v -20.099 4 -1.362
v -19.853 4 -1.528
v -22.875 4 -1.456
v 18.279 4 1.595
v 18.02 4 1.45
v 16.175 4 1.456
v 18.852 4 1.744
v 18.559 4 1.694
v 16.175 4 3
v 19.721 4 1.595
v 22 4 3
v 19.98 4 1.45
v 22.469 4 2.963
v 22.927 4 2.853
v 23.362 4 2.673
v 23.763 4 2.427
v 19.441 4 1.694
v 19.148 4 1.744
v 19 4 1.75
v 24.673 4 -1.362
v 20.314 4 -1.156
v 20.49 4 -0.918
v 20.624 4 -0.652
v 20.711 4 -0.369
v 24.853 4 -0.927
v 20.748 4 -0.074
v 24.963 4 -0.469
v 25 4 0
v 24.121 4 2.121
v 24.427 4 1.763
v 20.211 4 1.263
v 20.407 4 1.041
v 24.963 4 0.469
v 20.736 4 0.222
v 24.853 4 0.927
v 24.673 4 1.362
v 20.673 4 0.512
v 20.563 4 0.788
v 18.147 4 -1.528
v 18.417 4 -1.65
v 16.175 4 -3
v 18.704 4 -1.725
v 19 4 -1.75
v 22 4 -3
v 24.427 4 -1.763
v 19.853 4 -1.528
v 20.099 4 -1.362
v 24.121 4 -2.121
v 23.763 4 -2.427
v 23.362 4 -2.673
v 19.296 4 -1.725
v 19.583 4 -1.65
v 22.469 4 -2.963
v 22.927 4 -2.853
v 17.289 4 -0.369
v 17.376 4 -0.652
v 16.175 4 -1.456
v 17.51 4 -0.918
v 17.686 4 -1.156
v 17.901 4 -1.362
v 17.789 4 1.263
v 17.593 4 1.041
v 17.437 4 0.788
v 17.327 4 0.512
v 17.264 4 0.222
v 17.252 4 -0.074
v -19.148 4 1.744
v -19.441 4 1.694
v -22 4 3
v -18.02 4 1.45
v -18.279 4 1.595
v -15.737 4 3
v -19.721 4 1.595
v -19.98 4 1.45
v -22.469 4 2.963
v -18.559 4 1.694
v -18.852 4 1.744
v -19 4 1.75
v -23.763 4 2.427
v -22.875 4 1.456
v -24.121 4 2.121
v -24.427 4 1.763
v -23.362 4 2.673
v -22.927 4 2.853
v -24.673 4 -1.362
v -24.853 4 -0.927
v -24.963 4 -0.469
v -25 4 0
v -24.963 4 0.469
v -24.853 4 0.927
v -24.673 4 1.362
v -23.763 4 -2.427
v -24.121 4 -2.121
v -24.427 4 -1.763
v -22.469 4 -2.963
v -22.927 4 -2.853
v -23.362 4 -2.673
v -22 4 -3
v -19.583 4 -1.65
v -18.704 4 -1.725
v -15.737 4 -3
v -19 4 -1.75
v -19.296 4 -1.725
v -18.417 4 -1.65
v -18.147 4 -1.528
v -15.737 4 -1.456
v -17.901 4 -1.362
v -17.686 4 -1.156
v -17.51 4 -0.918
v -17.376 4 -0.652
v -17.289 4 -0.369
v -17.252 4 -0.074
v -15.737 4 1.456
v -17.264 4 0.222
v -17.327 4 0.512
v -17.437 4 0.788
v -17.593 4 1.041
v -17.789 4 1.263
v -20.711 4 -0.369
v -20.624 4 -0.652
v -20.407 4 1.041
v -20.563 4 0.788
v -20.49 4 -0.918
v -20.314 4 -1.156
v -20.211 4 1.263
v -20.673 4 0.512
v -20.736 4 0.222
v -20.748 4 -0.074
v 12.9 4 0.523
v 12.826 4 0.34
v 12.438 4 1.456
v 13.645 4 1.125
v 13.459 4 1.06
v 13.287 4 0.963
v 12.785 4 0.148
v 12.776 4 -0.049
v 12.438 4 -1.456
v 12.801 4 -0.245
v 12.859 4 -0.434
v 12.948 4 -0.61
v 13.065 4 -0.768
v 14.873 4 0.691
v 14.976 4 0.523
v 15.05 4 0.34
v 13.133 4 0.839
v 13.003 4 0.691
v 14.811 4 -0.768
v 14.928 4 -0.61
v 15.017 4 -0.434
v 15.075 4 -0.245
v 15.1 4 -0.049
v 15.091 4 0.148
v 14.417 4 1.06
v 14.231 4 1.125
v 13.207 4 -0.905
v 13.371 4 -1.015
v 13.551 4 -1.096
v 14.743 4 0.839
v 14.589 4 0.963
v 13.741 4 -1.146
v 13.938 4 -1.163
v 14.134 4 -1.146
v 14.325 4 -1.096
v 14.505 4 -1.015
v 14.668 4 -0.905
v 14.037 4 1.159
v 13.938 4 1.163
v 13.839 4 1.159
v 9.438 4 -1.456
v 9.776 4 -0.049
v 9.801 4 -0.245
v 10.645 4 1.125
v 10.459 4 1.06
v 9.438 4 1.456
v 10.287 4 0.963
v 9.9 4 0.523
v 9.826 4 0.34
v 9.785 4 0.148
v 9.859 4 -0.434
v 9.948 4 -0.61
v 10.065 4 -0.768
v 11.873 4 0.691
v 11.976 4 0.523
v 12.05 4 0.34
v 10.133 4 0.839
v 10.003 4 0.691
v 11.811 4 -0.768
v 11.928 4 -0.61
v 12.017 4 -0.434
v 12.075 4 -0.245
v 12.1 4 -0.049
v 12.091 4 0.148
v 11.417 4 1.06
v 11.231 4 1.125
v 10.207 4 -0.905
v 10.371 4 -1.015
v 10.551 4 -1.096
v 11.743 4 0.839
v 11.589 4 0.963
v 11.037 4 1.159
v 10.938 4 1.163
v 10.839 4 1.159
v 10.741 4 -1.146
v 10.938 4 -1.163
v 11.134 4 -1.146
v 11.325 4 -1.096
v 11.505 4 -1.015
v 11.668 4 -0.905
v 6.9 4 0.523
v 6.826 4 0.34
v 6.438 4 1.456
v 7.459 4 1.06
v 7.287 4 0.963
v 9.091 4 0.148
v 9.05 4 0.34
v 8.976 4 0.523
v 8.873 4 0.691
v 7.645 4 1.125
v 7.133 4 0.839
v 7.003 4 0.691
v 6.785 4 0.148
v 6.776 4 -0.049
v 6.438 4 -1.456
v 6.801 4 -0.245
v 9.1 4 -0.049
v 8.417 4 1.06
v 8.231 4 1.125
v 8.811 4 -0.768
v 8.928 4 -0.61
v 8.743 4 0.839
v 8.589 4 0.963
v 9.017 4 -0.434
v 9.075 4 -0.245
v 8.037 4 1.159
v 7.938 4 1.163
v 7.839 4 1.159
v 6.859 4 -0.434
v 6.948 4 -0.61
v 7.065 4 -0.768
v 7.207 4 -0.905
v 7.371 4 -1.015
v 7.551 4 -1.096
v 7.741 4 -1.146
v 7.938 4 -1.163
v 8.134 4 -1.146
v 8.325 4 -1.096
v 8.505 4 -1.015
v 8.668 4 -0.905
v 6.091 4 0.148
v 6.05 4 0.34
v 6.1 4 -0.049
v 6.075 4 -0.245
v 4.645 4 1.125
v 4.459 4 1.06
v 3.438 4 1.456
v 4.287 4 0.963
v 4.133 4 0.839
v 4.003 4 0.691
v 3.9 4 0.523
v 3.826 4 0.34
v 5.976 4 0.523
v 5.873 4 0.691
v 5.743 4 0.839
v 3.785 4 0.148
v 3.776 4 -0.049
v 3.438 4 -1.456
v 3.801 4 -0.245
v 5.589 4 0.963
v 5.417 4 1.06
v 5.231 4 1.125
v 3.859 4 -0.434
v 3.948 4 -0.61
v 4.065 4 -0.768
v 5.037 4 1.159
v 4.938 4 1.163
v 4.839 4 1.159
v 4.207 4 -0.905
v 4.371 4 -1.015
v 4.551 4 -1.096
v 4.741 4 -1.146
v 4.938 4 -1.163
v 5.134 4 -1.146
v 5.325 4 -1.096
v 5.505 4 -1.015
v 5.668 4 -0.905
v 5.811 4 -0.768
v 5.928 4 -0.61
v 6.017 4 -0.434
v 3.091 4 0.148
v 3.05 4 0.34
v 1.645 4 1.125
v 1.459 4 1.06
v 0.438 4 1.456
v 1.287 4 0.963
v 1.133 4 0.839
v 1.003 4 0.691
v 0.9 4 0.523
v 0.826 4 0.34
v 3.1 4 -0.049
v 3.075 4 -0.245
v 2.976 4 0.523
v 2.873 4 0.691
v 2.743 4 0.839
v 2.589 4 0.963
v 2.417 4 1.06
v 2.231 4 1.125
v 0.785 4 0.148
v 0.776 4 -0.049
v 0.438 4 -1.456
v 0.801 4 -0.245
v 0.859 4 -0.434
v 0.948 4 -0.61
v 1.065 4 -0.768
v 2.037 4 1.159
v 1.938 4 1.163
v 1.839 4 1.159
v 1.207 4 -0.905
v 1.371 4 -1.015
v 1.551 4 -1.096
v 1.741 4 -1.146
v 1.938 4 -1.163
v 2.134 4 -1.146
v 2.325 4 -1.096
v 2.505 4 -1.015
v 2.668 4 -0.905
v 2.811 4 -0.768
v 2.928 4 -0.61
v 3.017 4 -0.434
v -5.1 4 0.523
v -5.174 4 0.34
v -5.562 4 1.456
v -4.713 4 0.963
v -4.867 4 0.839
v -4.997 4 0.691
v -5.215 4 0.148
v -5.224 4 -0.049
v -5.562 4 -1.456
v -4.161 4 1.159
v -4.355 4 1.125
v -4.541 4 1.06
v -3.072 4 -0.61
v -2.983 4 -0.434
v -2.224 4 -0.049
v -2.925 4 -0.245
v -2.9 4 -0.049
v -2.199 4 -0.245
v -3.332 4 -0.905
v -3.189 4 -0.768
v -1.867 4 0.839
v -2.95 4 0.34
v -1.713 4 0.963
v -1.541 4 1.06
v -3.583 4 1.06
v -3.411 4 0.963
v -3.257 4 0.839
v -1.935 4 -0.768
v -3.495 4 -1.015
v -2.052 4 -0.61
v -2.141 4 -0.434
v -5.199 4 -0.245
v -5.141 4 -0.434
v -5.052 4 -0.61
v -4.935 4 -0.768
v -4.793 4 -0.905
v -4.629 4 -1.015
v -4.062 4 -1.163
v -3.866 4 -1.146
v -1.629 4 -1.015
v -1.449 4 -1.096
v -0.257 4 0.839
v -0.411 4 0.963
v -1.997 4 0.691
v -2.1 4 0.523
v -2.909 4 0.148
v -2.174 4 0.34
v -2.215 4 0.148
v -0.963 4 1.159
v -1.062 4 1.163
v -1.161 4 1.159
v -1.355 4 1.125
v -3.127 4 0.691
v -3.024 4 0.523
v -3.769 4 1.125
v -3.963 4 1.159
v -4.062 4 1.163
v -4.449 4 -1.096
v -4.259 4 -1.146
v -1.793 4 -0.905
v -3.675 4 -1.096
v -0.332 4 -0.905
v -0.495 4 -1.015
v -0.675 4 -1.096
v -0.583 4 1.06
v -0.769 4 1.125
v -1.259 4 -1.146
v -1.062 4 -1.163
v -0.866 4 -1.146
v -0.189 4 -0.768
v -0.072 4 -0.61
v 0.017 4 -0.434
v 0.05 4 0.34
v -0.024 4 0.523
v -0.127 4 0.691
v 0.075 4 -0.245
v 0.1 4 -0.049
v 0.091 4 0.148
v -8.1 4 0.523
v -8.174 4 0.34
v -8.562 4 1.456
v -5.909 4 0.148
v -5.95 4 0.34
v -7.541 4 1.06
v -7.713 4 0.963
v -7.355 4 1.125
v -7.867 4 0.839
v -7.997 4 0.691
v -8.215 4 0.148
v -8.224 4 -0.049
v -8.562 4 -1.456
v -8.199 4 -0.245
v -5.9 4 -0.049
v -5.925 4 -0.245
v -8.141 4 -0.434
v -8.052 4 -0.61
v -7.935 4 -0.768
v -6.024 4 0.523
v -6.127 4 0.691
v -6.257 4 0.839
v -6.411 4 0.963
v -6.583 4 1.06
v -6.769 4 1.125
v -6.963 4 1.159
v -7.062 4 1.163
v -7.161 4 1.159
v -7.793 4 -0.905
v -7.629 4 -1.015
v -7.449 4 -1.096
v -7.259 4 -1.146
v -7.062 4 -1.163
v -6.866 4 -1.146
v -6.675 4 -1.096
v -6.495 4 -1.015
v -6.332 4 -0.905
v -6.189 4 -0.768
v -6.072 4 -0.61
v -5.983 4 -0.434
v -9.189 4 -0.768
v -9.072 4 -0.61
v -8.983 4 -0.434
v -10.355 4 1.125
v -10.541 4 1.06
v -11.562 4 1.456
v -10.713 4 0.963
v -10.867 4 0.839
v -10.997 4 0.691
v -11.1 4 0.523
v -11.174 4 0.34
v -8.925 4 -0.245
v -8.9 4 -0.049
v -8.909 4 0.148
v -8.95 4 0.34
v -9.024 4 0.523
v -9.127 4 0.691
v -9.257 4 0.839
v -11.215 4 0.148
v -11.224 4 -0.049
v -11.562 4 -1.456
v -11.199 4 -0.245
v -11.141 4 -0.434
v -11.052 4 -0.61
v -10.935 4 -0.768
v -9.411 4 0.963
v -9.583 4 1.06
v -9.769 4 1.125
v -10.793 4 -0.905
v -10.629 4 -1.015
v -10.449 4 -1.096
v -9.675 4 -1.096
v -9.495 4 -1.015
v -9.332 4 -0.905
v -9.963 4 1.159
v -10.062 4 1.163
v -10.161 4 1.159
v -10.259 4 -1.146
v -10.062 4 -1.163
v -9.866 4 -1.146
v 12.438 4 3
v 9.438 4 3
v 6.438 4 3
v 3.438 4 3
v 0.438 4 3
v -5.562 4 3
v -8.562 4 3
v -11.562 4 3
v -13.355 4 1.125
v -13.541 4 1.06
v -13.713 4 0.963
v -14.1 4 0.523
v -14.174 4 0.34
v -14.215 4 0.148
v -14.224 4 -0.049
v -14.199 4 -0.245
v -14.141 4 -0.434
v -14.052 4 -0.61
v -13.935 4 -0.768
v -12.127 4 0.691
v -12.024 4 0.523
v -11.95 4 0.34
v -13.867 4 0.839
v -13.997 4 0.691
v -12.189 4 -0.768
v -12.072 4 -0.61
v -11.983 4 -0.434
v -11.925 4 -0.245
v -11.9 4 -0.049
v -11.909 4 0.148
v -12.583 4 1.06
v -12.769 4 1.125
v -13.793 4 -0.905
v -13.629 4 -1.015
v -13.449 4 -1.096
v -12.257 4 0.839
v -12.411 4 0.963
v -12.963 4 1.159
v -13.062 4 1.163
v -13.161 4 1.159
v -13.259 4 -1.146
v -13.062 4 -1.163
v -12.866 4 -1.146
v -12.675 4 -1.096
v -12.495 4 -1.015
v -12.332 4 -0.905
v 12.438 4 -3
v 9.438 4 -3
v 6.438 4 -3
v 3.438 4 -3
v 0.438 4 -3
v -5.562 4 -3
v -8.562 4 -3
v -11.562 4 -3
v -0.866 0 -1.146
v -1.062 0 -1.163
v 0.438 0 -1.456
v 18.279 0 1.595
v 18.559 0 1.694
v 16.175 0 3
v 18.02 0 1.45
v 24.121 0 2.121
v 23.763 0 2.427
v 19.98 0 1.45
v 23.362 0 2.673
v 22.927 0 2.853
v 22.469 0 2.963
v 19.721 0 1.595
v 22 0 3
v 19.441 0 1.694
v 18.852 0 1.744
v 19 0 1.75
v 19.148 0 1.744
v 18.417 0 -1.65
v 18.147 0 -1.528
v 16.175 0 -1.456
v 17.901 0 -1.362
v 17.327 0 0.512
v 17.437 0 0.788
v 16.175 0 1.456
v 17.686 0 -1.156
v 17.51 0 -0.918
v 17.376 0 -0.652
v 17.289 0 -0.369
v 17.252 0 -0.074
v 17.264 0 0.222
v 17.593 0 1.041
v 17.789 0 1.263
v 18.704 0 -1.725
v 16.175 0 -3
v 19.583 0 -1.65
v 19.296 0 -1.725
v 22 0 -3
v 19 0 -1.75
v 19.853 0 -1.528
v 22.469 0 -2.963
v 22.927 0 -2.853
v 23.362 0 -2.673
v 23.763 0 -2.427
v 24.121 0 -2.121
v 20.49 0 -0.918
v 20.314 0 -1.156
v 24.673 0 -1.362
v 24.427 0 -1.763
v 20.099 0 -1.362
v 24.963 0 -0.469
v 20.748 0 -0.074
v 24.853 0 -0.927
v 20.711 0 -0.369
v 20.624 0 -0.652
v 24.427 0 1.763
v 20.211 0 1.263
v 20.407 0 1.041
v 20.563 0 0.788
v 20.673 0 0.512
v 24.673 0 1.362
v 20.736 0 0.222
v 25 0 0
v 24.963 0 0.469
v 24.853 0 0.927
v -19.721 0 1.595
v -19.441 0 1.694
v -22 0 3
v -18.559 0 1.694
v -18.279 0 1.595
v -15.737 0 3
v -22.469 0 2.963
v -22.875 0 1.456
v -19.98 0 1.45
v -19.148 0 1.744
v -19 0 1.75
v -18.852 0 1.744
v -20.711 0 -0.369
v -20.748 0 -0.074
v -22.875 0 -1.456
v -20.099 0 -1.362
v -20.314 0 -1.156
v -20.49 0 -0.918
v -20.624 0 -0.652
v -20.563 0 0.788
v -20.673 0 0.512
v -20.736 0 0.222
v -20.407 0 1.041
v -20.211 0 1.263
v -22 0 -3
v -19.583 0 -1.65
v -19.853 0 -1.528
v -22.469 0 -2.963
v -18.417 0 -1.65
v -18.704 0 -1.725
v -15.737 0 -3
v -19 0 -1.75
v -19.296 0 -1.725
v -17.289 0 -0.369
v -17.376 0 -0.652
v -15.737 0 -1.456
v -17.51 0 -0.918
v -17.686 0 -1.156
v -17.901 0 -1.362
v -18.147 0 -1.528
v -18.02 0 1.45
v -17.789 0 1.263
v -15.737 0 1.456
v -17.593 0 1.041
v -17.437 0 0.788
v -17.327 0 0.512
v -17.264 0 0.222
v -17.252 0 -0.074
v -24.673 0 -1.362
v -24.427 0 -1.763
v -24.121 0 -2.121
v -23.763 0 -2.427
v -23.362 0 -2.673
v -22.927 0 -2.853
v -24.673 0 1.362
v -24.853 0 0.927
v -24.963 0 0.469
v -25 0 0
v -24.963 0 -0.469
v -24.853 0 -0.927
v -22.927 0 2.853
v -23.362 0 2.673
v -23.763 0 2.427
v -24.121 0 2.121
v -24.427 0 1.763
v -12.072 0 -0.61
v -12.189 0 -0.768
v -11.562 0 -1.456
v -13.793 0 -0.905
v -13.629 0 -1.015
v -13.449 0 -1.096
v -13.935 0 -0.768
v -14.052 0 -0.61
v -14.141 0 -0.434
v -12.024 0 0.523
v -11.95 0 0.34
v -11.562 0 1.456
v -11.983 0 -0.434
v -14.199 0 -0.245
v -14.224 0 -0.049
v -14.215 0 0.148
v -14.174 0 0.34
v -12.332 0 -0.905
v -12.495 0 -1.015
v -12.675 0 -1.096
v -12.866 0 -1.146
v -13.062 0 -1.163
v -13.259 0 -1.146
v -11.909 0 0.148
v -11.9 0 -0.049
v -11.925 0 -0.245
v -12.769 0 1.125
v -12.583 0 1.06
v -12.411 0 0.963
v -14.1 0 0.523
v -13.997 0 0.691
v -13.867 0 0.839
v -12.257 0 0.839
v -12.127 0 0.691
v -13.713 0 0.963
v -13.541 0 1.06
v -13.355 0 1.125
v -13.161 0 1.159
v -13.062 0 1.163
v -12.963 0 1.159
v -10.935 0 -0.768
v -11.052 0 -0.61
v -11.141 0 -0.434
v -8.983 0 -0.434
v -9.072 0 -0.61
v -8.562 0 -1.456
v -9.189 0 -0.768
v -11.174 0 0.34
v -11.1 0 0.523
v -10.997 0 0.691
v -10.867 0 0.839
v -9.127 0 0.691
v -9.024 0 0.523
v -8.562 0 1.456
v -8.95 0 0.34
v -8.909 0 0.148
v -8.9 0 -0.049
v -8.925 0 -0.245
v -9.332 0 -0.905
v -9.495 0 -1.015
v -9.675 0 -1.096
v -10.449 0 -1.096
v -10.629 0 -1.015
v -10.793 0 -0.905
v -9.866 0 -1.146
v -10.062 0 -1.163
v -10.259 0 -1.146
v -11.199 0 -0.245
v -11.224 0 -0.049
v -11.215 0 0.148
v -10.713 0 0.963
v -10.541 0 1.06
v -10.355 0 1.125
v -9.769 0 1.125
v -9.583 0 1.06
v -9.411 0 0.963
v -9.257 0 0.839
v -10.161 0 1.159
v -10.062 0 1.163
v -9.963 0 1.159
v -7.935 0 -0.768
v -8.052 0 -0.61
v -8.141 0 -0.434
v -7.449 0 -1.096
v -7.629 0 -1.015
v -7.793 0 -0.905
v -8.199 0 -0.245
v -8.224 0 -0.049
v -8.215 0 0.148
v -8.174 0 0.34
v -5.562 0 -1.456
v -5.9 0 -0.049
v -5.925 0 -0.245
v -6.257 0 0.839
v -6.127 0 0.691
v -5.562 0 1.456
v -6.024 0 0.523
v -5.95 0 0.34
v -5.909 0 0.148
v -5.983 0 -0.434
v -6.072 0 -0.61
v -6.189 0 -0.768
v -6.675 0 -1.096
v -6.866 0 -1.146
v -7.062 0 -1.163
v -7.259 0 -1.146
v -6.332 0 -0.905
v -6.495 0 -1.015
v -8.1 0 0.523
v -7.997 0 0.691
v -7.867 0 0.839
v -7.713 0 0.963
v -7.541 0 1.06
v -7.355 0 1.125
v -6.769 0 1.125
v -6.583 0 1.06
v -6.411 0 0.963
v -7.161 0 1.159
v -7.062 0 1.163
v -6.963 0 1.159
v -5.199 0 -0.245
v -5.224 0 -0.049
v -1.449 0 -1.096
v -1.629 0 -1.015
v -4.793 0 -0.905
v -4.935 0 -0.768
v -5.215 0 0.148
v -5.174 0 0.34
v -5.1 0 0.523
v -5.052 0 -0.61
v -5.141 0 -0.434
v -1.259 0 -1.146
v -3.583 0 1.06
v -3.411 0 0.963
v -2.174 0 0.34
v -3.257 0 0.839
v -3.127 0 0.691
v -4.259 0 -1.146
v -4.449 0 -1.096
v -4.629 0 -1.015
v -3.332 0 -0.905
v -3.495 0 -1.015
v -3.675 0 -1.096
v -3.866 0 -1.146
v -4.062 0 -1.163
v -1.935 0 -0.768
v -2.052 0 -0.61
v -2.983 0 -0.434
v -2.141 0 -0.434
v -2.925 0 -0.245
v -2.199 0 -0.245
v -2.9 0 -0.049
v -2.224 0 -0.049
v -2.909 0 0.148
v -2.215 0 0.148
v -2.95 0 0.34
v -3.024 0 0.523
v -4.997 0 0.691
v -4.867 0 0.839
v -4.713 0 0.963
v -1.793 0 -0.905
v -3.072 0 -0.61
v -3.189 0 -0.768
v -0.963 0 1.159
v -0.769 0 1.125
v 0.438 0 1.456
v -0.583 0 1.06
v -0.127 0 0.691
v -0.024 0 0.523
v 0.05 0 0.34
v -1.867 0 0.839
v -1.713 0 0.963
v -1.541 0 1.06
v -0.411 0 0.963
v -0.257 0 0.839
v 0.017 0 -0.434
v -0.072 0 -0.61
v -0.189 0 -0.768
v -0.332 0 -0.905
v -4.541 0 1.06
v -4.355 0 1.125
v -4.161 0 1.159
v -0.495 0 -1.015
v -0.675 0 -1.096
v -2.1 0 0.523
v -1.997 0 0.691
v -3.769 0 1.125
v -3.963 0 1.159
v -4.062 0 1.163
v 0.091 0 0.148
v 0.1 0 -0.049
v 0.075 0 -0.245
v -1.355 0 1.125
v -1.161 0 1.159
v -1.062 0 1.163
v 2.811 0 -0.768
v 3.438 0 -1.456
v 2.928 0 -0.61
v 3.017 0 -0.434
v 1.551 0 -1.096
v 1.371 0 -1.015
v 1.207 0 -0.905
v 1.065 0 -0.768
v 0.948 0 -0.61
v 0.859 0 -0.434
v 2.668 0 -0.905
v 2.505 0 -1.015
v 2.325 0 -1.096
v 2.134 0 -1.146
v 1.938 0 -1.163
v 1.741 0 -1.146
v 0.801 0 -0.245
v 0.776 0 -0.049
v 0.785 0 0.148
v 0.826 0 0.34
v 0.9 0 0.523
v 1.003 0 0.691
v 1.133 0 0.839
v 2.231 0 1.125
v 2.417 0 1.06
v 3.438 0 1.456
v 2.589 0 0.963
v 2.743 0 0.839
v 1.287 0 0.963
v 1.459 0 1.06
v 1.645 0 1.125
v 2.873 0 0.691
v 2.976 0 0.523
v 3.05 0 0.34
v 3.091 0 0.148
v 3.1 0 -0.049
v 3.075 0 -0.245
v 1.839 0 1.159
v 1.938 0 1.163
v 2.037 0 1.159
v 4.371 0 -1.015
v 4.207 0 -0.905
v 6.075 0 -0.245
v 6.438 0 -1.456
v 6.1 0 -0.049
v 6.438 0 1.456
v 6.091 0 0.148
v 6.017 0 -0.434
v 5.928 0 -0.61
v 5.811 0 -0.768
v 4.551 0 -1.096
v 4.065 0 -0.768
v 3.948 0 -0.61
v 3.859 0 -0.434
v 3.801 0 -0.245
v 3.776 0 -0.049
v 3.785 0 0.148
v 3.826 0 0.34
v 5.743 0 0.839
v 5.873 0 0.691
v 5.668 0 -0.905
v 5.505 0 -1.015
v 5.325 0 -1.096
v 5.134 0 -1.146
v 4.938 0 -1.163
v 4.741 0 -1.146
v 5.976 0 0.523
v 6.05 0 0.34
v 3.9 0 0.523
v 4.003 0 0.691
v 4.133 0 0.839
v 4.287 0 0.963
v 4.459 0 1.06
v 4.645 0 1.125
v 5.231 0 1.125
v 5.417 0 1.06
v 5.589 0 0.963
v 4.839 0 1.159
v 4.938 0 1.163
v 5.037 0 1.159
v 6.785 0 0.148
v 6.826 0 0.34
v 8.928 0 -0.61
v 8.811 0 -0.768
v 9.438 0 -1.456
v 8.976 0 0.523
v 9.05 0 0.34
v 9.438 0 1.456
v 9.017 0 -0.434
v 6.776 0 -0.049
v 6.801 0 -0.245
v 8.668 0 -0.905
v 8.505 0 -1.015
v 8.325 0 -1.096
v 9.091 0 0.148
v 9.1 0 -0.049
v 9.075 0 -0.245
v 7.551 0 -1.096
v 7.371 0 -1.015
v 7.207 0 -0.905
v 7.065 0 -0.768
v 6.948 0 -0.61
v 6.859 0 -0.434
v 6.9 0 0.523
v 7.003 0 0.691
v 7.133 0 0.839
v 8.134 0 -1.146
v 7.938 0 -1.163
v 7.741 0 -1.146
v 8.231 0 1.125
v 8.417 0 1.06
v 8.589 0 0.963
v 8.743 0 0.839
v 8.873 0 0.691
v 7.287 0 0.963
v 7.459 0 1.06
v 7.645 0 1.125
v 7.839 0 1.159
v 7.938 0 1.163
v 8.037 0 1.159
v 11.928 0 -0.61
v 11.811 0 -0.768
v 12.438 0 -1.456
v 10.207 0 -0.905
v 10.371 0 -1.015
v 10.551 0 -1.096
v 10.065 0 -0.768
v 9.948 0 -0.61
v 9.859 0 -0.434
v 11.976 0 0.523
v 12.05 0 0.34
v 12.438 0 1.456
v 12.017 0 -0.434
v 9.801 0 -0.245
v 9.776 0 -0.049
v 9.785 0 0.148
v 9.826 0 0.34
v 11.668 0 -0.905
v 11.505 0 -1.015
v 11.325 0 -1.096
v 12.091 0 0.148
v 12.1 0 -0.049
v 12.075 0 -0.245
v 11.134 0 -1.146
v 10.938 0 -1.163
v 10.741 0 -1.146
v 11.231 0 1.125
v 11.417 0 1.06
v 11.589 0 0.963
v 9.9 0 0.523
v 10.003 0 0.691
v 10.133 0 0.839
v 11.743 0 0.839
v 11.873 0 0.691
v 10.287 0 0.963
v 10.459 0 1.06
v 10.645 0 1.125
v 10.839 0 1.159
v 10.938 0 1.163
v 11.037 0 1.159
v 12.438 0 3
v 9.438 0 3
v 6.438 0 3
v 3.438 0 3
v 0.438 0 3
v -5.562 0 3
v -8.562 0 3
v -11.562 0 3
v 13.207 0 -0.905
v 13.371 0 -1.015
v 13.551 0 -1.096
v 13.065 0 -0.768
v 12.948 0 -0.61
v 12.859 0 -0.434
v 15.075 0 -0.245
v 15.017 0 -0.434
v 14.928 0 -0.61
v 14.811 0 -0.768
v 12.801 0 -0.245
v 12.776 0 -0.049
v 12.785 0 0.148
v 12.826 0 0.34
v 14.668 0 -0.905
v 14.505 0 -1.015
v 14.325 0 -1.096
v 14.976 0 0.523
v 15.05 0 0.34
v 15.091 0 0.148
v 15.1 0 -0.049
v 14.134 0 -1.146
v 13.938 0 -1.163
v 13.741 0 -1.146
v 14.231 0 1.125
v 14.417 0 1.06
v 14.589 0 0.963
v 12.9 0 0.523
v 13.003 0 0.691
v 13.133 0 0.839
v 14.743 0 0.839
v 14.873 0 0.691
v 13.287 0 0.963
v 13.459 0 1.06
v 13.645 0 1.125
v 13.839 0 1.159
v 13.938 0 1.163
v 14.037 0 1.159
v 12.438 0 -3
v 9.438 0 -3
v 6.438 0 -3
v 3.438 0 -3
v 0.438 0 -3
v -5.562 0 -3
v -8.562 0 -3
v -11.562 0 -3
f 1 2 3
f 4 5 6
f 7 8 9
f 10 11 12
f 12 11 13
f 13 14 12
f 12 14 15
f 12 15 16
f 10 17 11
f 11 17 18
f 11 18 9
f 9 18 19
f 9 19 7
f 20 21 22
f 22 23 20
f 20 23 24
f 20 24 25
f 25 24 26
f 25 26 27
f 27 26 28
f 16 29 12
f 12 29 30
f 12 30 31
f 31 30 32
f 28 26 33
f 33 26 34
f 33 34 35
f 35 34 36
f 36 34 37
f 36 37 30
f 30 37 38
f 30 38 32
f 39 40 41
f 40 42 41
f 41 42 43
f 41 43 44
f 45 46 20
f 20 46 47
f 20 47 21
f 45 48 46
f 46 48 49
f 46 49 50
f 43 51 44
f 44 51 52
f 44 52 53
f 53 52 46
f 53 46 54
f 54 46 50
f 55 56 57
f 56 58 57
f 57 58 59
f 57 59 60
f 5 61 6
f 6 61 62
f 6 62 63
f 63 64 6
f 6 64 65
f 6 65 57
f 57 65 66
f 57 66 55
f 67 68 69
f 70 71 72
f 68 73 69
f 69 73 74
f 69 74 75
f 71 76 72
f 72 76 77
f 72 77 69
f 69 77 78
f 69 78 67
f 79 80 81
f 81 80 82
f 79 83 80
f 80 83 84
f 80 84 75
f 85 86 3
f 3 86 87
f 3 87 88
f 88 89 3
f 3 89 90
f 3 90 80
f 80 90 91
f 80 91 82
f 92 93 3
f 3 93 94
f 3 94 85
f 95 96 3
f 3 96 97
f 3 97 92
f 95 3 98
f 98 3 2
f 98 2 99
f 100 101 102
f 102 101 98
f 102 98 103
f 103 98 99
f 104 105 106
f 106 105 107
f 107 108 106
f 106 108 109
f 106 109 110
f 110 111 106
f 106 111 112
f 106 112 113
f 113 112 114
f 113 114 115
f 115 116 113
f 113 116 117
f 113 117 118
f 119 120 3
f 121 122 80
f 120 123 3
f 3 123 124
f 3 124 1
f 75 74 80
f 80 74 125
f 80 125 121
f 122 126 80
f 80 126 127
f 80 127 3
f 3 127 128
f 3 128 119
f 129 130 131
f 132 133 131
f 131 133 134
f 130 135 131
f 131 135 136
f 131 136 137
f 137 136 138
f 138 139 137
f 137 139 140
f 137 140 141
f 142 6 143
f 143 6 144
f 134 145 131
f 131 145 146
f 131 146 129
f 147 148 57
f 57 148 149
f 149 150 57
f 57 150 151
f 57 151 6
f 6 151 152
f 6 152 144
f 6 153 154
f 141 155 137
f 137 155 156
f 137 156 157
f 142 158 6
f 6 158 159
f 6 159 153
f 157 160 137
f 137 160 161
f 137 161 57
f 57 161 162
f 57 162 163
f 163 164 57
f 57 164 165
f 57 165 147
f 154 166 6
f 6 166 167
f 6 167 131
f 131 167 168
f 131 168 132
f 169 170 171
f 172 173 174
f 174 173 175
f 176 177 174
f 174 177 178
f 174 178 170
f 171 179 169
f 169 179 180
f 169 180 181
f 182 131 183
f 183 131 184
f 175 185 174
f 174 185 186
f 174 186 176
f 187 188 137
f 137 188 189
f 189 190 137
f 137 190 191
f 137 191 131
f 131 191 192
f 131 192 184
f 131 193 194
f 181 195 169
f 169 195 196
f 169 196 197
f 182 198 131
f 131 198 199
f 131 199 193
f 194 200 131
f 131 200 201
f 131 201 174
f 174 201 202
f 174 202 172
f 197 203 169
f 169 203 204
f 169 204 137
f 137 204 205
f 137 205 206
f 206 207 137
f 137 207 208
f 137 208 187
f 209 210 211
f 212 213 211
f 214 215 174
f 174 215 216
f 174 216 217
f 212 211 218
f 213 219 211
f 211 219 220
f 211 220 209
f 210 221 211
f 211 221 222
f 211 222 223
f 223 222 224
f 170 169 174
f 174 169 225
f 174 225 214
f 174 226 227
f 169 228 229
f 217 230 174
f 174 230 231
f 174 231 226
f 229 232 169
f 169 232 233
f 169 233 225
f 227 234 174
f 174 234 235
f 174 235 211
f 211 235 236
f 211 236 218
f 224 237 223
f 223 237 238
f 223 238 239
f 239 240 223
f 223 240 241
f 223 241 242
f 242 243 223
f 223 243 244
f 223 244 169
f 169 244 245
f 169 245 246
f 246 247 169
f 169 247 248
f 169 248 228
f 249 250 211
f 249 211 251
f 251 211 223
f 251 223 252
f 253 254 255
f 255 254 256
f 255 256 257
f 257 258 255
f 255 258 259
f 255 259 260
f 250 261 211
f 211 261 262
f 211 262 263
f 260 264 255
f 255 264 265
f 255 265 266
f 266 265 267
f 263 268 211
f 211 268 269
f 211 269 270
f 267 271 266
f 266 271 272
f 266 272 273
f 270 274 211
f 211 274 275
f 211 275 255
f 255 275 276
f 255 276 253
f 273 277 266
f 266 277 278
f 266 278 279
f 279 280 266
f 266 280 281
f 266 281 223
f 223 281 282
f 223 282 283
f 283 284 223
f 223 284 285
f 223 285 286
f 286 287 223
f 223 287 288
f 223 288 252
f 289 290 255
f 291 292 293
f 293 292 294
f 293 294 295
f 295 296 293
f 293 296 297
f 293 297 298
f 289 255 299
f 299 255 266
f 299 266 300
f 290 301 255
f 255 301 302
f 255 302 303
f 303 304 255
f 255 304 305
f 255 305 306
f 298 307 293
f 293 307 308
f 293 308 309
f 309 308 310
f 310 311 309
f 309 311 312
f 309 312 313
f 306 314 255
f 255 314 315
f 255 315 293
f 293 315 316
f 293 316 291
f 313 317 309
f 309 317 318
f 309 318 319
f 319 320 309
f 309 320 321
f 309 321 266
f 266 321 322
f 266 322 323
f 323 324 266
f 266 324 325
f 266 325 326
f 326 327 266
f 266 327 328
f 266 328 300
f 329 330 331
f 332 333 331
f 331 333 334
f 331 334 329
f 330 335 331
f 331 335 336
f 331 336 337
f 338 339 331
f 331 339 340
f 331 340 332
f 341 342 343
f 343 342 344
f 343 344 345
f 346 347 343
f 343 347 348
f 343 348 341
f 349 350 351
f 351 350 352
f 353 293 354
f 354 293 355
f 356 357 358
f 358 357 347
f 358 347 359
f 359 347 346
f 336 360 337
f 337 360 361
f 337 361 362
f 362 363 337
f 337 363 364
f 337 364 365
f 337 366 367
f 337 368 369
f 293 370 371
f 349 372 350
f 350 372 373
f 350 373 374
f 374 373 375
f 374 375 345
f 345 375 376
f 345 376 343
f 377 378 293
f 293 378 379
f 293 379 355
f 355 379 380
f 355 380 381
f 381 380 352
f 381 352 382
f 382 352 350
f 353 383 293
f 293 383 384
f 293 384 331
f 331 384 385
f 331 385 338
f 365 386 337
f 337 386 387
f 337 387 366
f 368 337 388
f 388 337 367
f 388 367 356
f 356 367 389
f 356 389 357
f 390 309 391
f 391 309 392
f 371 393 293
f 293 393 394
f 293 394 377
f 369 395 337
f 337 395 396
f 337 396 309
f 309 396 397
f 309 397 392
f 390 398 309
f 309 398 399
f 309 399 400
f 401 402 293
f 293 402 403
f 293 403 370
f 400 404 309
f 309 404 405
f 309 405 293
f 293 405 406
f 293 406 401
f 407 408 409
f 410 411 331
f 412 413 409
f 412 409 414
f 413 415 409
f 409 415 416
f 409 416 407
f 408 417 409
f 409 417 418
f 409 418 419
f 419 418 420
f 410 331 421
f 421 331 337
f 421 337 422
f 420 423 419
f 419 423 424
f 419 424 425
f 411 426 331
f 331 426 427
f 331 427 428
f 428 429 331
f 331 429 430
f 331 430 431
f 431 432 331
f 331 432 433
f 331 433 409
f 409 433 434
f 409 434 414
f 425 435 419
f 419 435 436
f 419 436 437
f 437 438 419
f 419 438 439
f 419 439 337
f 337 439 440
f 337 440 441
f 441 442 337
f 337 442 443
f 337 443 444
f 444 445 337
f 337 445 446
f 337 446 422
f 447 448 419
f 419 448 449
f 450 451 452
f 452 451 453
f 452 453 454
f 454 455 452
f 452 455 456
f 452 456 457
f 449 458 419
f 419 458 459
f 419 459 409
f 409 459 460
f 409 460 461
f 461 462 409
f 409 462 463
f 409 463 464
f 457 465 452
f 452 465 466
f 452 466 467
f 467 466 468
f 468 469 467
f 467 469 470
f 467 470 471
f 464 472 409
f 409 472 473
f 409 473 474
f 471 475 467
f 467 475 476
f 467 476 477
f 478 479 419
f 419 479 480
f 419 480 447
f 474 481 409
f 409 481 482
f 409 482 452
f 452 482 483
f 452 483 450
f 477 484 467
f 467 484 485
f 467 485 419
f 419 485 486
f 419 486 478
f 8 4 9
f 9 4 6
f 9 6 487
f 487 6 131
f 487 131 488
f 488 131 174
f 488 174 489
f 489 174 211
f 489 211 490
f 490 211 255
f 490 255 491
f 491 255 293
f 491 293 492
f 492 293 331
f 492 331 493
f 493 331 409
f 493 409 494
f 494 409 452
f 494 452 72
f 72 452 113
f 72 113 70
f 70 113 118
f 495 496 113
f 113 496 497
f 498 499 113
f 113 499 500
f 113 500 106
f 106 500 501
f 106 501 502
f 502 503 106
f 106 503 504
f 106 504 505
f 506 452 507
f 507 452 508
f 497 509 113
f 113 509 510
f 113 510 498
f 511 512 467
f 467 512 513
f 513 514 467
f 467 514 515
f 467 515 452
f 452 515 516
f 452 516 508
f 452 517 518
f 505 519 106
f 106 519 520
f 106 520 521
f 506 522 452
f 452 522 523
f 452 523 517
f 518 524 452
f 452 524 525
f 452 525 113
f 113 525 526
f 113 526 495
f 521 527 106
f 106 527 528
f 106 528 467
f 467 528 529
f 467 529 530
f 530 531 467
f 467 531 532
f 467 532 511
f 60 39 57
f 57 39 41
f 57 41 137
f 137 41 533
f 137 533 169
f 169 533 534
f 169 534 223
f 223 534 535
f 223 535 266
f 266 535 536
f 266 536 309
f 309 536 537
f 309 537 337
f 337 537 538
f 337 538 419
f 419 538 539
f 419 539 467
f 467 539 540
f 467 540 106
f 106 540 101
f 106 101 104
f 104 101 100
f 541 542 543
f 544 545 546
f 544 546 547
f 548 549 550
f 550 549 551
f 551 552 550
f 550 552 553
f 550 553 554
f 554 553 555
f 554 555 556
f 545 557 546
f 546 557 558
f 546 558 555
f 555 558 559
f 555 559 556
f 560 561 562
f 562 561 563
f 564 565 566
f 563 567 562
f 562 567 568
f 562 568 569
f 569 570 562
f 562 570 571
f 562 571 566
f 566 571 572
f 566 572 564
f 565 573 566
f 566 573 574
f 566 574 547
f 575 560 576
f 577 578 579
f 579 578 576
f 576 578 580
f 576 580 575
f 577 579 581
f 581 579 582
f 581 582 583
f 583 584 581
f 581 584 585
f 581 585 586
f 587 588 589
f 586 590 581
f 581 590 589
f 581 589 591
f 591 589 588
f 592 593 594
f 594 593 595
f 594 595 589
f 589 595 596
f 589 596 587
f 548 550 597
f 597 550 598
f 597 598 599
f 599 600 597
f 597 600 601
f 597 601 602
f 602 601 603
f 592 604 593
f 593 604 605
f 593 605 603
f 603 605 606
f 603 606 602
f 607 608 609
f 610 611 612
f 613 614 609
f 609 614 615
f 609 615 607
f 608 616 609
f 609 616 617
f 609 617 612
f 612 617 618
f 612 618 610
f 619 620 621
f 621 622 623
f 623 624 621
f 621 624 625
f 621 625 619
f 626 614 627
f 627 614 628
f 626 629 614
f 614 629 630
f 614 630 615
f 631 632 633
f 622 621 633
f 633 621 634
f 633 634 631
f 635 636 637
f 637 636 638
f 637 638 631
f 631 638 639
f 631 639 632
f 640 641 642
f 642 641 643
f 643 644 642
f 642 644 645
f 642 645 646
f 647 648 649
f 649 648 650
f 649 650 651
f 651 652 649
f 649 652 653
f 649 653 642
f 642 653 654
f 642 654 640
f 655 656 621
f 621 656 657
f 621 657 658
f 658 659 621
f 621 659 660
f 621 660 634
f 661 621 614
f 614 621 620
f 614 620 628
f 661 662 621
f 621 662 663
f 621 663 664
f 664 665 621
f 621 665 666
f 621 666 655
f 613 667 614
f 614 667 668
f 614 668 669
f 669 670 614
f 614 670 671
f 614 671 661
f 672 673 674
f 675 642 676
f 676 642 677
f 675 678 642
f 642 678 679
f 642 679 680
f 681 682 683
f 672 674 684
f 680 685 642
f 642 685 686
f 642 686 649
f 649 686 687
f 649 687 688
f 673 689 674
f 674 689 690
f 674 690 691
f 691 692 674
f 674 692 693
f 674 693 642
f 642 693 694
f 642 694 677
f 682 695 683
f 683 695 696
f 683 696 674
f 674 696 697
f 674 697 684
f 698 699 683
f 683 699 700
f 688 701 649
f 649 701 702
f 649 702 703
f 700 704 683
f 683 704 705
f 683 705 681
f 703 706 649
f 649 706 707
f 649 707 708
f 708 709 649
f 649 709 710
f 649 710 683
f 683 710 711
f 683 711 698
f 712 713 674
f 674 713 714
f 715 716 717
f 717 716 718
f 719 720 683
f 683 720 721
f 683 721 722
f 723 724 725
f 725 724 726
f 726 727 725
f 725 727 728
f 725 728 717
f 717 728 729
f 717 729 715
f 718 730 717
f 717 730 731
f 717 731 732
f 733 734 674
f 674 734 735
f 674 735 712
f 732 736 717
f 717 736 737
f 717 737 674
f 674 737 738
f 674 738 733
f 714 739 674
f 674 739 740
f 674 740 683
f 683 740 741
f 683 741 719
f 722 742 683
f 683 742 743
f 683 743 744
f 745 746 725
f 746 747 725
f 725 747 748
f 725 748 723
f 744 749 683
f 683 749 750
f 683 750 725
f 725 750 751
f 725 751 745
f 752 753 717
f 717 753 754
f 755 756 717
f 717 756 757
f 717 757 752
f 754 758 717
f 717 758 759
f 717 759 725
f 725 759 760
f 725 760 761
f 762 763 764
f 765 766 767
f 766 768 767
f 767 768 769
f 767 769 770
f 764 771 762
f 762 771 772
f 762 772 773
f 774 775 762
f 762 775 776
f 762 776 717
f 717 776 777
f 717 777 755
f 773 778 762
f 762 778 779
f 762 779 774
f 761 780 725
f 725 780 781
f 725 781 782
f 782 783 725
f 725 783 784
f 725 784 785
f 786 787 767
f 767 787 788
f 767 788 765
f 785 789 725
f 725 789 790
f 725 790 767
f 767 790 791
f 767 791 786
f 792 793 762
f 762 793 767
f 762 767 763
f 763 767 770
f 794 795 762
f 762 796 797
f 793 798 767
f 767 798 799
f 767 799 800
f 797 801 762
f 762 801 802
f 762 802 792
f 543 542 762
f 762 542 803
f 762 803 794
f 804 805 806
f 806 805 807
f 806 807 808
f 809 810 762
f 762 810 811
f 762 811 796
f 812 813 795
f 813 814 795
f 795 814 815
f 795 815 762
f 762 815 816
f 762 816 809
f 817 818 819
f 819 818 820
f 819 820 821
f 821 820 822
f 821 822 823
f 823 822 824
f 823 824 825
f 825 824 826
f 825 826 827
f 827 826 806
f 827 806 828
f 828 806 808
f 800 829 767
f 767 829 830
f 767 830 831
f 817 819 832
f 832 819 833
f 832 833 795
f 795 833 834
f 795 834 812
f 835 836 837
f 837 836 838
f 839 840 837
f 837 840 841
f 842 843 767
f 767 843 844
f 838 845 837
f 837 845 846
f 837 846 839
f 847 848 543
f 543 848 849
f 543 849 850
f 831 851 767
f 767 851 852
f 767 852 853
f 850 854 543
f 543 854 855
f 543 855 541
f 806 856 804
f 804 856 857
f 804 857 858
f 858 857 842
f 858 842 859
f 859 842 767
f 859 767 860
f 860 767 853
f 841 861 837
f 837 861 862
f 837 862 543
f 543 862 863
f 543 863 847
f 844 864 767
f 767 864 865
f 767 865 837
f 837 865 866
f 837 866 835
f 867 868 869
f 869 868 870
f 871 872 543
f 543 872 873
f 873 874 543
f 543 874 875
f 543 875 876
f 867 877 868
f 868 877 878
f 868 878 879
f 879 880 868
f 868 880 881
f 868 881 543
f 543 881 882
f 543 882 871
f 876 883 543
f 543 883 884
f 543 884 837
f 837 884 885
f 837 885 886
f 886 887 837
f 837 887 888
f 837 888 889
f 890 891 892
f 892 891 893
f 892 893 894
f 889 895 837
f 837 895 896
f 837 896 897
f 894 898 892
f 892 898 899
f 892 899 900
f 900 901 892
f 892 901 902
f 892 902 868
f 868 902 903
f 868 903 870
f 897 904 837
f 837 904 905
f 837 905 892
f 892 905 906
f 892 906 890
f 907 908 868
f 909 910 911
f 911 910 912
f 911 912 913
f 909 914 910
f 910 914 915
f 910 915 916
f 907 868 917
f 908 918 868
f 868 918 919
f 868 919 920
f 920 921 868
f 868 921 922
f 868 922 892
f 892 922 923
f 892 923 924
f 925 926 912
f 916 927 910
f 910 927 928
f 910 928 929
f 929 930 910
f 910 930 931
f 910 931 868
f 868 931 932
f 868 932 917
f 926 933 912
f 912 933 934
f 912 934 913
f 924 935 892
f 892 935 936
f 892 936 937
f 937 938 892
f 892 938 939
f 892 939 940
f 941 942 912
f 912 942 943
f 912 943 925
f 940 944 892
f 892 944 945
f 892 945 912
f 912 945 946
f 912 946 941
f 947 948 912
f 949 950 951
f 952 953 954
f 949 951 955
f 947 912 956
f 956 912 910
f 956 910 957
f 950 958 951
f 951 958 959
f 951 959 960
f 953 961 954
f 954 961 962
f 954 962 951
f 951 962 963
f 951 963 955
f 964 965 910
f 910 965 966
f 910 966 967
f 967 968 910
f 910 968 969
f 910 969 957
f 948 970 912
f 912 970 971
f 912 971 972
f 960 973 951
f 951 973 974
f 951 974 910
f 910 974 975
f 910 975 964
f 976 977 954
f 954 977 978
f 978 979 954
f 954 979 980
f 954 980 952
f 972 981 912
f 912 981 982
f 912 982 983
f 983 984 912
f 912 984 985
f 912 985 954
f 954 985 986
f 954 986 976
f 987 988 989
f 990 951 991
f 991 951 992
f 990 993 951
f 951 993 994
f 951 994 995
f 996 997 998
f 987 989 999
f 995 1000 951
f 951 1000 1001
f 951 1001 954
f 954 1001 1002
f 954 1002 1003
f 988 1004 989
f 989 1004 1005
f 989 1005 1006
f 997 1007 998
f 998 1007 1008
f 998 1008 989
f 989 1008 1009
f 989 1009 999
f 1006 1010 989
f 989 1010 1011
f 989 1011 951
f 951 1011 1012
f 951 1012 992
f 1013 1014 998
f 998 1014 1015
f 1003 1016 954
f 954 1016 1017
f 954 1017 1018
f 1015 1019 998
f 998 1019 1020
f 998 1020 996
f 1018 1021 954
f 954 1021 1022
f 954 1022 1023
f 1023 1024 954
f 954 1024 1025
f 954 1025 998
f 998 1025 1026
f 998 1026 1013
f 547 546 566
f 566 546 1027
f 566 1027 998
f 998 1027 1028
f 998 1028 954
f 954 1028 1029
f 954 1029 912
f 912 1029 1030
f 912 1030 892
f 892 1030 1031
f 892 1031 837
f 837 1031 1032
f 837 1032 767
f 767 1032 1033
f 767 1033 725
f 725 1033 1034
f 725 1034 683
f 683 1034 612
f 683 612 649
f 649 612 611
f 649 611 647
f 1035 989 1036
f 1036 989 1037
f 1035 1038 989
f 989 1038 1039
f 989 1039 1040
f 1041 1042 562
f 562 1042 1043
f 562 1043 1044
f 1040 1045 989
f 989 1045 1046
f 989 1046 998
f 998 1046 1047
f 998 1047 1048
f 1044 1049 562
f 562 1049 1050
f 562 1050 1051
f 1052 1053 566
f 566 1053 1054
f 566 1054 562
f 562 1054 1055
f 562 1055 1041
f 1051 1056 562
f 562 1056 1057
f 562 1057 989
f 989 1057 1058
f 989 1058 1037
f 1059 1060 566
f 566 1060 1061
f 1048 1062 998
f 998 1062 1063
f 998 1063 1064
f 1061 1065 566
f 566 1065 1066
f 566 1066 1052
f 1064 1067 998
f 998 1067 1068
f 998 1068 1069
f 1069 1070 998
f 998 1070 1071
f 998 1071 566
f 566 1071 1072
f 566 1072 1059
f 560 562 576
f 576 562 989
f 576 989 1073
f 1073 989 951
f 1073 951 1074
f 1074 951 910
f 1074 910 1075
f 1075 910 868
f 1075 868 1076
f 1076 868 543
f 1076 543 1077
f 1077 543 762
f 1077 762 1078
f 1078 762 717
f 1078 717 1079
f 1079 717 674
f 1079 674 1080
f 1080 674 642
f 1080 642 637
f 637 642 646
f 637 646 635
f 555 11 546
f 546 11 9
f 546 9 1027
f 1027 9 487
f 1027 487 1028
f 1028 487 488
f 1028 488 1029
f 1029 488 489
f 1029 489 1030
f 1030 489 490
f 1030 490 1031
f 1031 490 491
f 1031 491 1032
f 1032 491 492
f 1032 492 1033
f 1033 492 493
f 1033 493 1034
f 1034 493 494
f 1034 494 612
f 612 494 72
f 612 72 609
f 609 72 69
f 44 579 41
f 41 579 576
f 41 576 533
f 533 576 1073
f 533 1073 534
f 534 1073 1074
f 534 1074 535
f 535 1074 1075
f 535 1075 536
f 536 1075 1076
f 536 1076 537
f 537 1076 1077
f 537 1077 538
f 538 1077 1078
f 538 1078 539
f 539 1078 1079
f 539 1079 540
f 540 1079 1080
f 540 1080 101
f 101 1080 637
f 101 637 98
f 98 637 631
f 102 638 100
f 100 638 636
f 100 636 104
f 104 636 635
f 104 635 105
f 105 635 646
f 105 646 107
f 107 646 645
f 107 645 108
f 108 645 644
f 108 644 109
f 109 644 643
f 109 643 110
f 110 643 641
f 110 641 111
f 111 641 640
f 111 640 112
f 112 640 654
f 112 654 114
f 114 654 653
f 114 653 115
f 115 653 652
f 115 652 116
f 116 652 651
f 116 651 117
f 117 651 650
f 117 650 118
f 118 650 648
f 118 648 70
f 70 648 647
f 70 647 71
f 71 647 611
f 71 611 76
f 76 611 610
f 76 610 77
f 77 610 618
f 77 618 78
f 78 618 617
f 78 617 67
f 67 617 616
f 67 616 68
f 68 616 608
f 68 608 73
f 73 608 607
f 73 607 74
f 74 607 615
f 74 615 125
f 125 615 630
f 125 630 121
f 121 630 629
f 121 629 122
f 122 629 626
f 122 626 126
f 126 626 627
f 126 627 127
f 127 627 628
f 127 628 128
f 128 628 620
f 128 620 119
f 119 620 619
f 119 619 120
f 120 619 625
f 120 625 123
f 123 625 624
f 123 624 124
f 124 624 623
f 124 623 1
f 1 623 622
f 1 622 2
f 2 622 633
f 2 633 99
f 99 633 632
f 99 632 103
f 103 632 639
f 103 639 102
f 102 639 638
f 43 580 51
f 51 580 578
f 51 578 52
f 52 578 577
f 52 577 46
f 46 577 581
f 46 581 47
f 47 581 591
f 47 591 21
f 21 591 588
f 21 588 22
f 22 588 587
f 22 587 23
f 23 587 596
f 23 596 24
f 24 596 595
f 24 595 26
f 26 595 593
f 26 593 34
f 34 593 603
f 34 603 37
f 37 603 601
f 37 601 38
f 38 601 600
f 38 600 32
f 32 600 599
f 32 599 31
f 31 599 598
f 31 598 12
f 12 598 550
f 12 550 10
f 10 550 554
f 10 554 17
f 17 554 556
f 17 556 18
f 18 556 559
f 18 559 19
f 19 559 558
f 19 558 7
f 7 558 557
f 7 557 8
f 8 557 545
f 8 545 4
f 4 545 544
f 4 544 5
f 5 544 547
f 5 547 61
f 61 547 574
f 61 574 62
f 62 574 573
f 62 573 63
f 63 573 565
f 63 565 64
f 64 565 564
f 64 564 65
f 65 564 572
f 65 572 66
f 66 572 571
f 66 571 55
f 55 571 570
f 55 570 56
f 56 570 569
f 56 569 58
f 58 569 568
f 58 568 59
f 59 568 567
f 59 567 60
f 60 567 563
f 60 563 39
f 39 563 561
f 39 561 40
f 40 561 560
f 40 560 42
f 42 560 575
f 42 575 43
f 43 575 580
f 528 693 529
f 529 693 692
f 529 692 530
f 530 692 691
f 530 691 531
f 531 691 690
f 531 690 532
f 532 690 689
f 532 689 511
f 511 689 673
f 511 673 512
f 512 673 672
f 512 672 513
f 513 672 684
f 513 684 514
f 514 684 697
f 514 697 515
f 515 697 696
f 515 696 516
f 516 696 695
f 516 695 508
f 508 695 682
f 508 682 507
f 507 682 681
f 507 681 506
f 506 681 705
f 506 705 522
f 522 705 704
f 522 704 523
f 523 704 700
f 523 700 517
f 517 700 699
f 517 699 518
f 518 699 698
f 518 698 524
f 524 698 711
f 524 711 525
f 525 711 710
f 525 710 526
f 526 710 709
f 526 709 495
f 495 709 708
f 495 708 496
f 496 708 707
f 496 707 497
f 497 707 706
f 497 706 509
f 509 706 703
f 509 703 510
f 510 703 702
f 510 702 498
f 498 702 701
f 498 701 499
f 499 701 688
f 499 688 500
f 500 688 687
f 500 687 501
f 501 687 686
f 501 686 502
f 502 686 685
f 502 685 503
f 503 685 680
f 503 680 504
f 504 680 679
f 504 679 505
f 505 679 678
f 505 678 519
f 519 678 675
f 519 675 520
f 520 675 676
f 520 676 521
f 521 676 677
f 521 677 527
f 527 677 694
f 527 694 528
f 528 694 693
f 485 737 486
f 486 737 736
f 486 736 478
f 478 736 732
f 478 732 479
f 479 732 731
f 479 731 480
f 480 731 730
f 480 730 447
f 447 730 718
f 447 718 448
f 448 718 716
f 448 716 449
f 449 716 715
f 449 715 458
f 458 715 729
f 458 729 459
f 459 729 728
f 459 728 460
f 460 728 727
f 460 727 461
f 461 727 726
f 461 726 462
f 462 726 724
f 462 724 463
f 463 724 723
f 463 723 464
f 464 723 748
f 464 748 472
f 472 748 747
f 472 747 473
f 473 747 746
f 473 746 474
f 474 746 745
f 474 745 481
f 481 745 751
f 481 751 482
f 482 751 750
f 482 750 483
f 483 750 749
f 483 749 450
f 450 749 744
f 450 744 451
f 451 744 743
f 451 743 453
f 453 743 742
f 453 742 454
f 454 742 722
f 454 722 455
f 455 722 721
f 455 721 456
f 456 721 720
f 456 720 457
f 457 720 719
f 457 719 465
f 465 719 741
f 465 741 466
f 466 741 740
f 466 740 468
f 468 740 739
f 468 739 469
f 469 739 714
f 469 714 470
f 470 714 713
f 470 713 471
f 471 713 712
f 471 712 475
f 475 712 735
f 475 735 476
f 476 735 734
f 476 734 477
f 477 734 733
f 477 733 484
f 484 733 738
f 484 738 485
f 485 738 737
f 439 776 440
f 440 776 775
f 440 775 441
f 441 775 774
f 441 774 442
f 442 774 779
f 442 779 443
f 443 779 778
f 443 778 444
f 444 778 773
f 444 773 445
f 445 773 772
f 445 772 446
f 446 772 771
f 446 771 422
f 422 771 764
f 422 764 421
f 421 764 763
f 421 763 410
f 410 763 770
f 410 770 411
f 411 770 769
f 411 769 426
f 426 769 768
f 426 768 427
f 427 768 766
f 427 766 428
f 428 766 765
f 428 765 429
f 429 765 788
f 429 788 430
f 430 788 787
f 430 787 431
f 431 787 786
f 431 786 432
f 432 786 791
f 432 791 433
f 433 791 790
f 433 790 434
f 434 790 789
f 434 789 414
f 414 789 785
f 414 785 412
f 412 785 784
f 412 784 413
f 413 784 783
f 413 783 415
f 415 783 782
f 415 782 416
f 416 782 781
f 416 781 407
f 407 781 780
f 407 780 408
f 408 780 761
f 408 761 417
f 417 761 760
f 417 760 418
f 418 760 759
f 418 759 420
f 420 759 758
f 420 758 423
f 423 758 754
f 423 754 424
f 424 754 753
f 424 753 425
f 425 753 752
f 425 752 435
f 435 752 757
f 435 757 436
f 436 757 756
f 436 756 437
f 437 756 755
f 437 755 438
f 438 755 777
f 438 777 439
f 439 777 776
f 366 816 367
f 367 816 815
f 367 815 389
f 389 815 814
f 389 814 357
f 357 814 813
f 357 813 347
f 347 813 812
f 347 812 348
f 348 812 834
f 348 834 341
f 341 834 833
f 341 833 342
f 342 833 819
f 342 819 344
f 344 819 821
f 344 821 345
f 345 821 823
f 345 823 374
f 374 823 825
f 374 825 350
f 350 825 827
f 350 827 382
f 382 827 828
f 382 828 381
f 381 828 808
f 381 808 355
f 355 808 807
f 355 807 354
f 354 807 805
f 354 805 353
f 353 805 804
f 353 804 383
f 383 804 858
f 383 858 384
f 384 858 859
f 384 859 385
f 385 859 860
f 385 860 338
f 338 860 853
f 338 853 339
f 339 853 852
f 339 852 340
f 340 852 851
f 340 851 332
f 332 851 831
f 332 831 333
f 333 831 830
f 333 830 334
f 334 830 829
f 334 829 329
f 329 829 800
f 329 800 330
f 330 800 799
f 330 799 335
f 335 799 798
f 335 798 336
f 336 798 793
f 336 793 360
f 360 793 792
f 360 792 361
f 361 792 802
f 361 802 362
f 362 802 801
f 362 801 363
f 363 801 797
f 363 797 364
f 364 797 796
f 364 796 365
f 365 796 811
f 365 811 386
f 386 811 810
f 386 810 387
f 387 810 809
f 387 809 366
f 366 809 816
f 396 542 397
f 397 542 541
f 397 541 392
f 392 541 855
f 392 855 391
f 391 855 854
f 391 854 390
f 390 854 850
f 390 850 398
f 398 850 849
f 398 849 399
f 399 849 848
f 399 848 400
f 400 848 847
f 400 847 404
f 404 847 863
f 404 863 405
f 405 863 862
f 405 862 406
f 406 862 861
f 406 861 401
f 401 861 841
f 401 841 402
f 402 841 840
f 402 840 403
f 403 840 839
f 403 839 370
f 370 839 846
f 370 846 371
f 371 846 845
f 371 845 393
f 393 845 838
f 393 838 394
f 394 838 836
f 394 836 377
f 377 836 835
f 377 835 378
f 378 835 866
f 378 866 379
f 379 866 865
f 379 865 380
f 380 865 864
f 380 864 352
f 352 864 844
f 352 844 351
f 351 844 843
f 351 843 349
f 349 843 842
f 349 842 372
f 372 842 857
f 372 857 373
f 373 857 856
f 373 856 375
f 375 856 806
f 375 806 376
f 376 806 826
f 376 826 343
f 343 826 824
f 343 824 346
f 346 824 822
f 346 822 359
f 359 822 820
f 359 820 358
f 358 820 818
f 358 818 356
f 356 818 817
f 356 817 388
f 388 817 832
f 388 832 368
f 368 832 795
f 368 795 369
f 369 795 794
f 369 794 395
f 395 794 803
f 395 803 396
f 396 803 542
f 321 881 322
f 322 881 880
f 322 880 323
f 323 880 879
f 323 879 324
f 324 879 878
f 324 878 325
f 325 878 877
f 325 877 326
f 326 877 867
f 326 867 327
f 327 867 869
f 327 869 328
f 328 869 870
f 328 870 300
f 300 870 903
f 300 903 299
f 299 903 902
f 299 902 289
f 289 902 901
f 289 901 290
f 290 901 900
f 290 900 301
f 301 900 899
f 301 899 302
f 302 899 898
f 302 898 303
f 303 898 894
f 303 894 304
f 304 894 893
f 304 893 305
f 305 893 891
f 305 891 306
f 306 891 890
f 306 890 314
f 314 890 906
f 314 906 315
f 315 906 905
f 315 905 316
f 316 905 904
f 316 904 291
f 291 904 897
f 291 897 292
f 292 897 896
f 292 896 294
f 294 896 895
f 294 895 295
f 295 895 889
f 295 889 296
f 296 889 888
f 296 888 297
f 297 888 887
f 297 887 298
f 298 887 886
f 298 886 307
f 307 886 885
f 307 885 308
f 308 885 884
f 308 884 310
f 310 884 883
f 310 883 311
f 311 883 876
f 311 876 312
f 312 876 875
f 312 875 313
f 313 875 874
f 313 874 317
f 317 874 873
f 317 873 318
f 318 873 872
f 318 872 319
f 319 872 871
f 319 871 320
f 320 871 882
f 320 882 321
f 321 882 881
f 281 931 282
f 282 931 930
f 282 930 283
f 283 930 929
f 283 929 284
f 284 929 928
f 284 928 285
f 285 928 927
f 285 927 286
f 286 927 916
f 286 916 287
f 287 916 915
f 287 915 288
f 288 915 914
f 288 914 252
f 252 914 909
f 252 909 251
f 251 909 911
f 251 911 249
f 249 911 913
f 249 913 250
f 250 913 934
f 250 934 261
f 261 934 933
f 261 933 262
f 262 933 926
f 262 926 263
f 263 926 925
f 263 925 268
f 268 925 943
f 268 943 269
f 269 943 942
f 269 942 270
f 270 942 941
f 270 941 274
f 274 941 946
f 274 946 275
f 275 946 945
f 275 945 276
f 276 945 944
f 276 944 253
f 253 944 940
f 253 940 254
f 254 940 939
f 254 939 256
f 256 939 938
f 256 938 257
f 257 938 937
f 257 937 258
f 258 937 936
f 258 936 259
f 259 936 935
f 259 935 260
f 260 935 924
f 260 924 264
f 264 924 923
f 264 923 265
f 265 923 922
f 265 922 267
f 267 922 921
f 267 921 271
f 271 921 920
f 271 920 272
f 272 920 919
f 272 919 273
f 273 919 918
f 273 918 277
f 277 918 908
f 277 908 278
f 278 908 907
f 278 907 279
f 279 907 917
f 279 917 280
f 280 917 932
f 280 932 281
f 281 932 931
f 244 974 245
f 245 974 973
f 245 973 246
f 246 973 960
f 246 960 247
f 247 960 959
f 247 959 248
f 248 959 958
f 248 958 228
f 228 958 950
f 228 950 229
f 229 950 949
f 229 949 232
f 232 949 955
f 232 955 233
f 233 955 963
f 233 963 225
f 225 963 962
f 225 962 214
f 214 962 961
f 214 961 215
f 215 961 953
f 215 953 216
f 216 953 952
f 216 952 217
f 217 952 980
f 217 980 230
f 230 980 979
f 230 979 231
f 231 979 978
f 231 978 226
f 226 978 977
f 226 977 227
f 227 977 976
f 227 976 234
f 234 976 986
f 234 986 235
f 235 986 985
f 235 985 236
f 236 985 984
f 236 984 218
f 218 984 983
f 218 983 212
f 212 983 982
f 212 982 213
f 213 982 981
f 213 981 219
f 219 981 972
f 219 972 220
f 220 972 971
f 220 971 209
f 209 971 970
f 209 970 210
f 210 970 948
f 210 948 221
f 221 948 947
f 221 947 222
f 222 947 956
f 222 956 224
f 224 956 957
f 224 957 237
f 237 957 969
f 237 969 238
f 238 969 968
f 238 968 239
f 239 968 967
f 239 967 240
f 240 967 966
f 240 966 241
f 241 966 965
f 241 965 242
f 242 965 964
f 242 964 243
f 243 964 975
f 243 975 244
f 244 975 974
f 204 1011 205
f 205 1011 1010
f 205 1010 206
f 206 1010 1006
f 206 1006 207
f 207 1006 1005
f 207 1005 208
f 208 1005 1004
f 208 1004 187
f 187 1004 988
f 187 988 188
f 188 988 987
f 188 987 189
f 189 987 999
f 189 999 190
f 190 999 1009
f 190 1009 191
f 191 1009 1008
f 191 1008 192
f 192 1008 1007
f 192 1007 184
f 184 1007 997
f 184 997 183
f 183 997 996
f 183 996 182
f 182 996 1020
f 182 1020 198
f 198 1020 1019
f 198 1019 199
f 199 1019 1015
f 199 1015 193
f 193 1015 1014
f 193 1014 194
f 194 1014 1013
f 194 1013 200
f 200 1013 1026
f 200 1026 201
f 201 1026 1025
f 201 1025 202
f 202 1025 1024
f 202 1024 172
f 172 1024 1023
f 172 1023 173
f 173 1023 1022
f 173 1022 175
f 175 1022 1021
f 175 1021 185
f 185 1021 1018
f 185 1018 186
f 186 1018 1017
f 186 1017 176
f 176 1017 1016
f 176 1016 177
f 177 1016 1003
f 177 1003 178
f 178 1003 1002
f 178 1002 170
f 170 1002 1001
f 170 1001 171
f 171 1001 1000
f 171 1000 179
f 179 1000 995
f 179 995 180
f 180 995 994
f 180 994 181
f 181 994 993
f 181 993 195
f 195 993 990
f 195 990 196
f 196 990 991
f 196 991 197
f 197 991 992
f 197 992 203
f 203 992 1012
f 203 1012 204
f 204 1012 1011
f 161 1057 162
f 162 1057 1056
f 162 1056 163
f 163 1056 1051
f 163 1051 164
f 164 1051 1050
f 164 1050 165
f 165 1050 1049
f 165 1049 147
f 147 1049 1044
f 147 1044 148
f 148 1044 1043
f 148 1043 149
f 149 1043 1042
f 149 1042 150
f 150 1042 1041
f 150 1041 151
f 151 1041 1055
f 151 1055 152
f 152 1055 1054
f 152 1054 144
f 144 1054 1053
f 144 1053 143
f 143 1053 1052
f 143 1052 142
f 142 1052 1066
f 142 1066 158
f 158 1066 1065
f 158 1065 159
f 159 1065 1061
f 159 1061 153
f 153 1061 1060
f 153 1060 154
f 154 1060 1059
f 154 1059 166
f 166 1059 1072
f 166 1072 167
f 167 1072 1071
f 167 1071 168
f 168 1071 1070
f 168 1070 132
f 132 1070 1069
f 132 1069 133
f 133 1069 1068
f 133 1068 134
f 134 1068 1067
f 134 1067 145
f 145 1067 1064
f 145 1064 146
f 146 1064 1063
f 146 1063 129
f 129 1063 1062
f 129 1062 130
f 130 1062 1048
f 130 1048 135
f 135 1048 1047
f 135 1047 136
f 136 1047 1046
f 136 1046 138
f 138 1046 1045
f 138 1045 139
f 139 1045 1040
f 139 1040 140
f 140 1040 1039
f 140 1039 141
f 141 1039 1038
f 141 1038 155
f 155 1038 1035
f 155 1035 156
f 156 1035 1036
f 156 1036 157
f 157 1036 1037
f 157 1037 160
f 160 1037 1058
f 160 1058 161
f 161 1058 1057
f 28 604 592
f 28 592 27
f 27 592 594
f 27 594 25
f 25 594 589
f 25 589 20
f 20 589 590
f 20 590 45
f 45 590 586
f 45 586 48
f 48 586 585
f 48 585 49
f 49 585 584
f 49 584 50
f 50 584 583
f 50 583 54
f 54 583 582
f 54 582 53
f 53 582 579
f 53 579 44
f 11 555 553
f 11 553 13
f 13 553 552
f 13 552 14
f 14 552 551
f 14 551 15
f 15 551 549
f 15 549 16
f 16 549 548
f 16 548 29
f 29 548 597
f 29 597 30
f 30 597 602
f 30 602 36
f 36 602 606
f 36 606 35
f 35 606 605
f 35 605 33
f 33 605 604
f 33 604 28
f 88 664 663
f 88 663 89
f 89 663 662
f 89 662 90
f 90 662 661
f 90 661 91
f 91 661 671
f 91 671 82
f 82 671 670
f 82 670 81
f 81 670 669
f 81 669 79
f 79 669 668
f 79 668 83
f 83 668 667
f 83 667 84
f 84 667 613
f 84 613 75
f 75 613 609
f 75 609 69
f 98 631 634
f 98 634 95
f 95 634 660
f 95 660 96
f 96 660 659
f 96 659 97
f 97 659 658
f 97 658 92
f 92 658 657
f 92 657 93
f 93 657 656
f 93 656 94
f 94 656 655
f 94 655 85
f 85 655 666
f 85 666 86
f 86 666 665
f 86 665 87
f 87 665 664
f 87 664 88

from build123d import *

# Parameters (mm, degrees)
SKETCH_1_W      = 50
SKETCH_1_H      = 6
SKETCH_1_R      = 1.75
SKETCH_1_R_2    = 1.162790698
EXTRUDE_1_DEPTH = 4
FILLET_1_R      = 3


with BuildPart() as part:
    # 草圖1 → 填料-伸長1 (new body)
    with BuildSketch(Plane(origin=(0, 0, 0), x_dir=(1, 0, 0), z_dir=(0, 1, 0))):
        Rectangle(SKETCH_1_W, SKETCH_1_H)
        with Locations(Location((-19, 0, 0), (0, 0, 270))):
            Circle(SKETCH_1_R, mode=Mode.SUBTRACT)
        with Locations(Location((19, 0, 0), (0, 0, 270))):
            Circle(SKETCH_1_R, mode=Mode.SUBTRACT)
        with Locations(Location((-13.062015504, 0, 0), (0, 0, 270))):
            Circle(SKETCH_1_R_2, mode=Mode.SUBTRACT)
        with Locations(Location((-10.062015504, 0, 0), (0, 0, 270))):
            Circle(SKETCH_1_R_2, mode=Mode.SUBTRACT)
        with Locations(Location((-7.062015504, 0, 0), (0, 0, 270))):
            Circle(SKETCH_1_R_2, mode=Mode.SUBTRACT)
        with Locations(Location((-4.062015504, 0, 0), (0, 0, 270))):
            Circle(SKETCH_1_R_2, mode=Mode.SUBTRACT)
        with Locations(Location((-1.062015504, 0, 0), (0, 0, 270))):
            Circle(SKETCH_1_R_2, mode=Mode.SUBTRACT)
        with Locations(Location((1.937984496, 0, 0), (0, 0, 270))):
            Circle(SKETCH_1_R_2, mode=Mode.SUBTRACT)
        with Locations(Location((4.937984496, 0, 0), (0, 0, 270))):
            Circle(SKETCH_1_R_2, mode=Mode.SUBTRACT)
        with Locations(Location((7.937984496, 0, 0), (0, 0, 270))):
            Circle(SKETCH_1_R_2, mode=Mode.SUBTRACT)
        with Locations(Location((10.937984496, 0, 0), (0, 0, 270))):
            Circle(SKETCH_1_R_2, mode=Mode.SUBTRACT)
        with Locations(Location((13.937984496, 0, 0), (0, 0, 270))):
            Circle(SKETCH_1_R_2, mode=Mode.SUBTRACT)
    extrude(amount=EXTRUDE_1_DEPTH)

    # 圓角1
    fillet_1_edges = [part.edges().sort_by_distance(p)[0] for p in [
        (25, 2, 3),
        (25, 2, -3),
        (-25, 2, -3),
        (-25, 2, 3),
    ]]
    fillet(fillet_1_edges, radius=FILLET_1_R - 0.0001)  # a hair under: the kernel refuses the full size


solid = part.part
